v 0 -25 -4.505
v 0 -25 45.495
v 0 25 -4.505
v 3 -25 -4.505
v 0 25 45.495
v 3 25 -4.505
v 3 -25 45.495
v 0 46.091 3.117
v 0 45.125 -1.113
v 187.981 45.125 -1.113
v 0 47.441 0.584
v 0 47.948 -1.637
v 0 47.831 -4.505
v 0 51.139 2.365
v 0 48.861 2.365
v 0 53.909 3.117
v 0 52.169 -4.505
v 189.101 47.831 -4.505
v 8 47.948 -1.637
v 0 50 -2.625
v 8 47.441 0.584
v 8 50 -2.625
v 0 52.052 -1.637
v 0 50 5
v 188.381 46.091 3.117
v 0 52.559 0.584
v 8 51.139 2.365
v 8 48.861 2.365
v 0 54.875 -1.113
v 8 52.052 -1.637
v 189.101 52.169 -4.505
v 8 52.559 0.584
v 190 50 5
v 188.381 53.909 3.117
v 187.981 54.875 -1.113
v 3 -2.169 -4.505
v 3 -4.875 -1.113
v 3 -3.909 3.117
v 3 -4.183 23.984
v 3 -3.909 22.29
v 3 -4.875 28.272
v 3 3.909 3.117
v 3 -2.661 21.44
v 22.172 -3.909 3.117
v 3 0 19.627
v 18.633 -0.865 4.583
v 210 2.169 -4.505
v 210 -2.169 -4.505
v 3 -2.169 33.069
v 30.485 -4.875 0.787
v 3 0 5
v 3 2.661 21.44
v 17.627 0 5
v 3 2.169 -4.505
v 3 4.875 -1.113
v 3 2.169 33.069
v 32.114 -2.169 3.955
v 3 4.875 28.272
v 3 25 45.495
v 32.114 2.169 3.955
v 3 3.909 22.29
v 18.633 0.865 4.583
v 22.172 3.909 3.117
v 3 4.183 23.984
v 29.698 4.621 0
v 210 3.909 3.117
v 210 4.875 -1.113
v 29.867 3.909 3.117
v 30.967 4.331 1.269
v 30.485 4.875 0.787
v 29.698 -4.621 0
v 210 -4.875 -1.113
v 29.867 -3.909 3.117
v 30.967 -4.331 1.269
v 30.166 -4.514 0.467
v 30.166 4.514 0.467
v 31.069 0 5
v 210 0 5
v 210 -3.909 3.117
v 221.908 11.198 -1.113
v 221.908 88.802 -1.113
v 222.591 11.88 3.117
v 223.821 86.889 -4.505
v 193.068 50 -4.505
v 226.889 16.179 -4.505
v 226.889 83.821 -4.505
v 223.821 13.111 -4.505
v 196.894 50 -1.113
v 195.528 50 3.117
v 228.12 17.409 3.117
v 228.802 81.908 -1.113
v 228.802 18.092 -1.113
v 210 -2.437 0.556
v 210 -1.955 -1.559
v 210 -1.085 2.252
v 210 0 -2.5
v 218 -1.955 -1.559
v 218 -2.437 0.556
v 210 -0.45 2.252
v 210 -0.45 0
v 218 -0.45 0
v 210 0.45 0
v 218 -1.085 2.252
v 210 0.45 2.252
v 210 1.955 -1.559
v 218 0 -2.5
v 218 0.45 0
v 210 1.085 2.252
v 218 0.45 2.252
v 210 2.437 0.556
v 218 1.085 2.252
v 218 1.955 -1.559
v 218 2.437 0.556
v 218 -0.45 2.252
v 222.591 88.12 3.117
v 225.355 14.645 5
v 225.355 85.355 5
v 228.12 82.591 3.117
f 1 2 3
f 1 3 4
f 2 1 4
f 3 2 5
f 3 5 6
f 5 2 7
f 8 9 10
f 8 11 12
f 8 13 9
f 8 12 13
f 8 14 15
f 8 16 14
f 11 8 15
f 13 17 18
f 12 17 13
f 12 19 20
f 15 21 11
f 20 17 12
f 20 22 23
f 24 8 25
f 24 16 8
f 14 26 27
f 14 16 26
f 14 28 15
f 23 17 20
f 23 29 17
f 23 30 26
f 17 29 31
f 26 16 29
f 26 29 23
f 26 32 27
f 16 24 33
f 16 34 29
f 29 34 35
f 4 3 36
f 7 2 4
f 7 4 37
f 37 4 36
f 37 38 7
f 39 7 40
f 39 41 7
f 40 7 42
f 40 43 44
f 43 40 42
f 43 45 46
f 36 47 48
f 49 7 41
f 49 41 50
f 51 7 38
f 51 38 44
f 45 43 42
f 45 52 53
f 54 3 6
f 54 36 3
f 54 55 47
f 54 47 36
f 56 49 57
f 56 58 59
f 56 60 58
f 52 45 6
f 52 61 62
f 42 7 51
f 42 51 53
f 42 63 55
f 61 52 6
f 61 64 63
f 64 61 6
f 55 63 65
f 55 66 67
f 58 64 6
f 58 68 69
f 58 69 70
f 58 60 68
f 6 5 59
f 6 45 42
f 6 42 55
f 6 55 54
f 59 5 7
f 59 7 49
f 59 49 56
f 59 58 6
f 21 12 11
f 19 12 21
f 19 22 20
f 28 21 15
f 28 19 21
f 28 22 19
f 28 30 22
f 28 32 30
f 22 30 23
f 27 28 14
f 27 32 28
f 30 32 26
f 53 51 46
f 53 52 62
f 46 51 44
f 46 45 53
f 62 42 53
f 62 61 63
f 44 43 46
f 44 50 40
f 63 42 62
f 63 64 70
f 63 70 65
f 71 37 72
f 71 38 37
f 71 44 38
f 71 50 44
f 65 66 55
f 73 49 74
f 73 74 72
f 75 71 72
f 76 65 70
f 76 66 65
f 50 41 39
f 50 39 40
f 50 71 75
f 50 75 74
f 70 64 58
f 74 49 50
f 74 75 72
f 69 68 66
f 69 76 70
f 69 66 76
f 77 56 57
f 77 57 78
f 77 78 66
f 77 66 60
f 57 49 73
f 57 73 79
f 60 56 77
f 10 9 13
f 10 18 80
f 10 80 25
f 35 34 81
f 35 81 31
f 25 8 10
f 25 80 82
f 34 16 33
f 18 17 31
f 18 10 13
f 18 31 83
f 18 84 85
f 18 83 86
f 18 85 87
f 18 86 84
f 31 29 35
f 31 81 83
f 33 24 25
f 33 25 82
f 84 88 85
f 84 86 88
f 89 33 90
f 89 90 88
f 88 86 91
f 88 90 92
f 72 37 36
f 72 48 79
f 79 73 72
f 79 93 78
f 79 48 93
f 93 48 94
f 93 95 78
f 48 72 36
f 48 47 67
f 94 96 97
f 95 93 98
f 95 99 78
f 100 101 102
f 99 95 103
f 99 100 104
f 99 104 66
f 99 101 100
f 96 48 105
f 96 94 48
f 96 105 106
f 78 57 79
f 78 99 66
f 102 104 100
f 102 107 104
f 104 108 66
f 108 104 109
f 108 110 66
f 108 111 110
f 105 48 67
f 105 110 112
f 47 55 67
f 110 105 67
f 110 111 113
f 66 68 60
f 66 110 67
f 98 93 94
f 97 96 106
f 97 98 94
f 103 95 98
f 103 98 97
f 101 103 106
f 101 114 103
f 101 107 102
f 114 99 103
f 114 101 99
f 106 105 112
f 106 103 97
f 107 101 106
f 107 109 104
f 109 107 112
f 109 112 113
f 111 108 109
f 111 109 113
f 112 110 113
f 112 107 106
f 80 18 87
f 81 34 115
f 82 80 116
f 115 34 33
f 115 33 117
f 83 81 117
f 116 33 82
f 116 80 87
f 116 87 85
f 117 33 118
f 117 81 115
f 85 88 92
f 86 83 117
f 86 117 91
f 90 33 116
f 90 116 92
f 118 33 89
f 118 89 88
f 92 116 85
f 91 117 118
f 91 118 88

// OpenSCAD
// file: puzzlecut.scad
// OpenSCAD Puzzlecut library
// Author: Matthew Fallshaw
// Source: https://github.com/matthewfallshaw/os_puzzlecut.git

// Public Constants
PC_MALE=1;
PC_FEMALE=0;
PC_X=[1,0,0];
PC_Y=[0,1,0];
PC_Z=[0,0,1];

// Private Constants
FIT_CLEARANCE=0.25;

// puzzle_cut module
// cuts away one of the positive axes and adds (male or female) joining pins/holes
// @param {number} pin_dia - diameter of joining pins
// @param {number} pin_length - length of joining pins
// @param {PC_MALE|PC_FEMALE} sex - male (pin) or female (hole)
// @param {PC_X|PC_Y|PC_Z} axis - which positive axis will be cut
// @param {Array.<Array.<number>>} [pins_v=[[0,0]]] - vector of pin locations ([[y,z]] for PC_X, etc.)
// @param {integer} [$fn=7] - facets
// @param {number} [fit_clearance=0.25] - extra size for the fit hole
// @param {number} [line_width=0.45] - printed line width
// @param {number} [cut_size=10000] - bounding cut cube size
module puzzle_cut(pin_dia=8,pin_length=8,sex=PC_MALE,axis=PC_X,pins_v=[[0,0]],
                  $fn=7,fit_clearance=FIT_CLEARANCE,line_width=0.45,cut_size=10000)
{
  difference() {
    children();
    if (sex) {
      difference() {
        cut_cube(sex,cut_size);
        cut_pins(pin_dia,pin_length,sex,pins_v,$fn,fit_clearance,line_width);
      }
    }
    else {
      union() {
        cut_cube(sex,cut_size);
        cut_pins(pin_dia,pin_length,sex,pins_v,$fn,fit_clearance,line_width);
      }
    }
  }
}

module cut_cube(sex,cut_size)
{
  rotate(sex ? 0 : 180) translate([0,-cut_size/2,-cut_size/2]) cube(cut_size);
}

module cut_pins(pin_dia,pin_length,sex,pins_v,$fn,fit_clearance,line_width)
{
  for (p=pins_v) {
    translate([-pin_length,p[0],p[1]])
      pin(pin_dia=pin_dia,pin_length=pin_length*2,sex=sex,
          $fn=$fn,fit_clearance=fit_clearance,line_width=line_width);
  }
}

module pin(pin_dia=8,pin_length=8,sex=PC_MALE,$fn=7,fit_clearance,line_width=0.45)
{
  slot=ceil(pin_dia/6/line_width)*line_width;
  difference() {
    rotate([180,0,0]) beam(l=pin_length,d=pin_dia+(sex?0:fit_clearance),n=$fn);
    if(sex) translate([-1,-slot/2,0]) cube([pin_length+2,slot,pin_dia]);
  }
}

module beam(l,d,n) {
  rotate([0,90]) rotate([0,0,360/(n*2)]) cylinder(h=l,d=d,$fn=n);
}


/*
// Example
cut=210;
translate([cut,0]) puzzle_cut(pin_dia=4,pin_length=8,sex=PC_MALE,axis=PC_X)   translate([-cut,0])
  forked_beam();
translate([0,50])  puzzle_cut(pin_dia=4,pin_length=8,sex=PC_FEMALE,axis=PC_X) translate([-cut,0])
  forked_beam();
*/
// file: NopSCADlib/lib.scad
// Control
testing = false;

$fs = $preview ? 1 : 0.05;
$fa = $preview ? 1 : 0.2;

wall = 2;
dupont = 2.54;

koppla_width = 50.5;
koppla_diameter = 24.5;
case_width = koppla_width + wall*2;
case_diameter = koppla_diameter + wall*2;
payload_width = koppla_width - wall*2; 
payload_diameter = koppla_diameter - wall*2;

// Boards
wemos_width = 25.6;
wemos_length = 34.2;

euplug_width = 35.3;
euplug_diameter = 13.7;

lid_height = 10;

h_board = wemos_length;
h_buffer_lid = 15;
h_buffer_koppla = 25;
h_buffer = h_buffer_lid + h_buffer_koppla;
h_overlap = euplug_width*0.75;

case_height = lid_height+h_buffer+h_board+h_overlap+wall*2;

module Block(w, h, d) {
    hull() {
        for(x=[-1,1])
            translate([(w-d)/2*x,0,0])
                cylinder(h=h, r=d/2, center=true);
    }
}
// main file
include <NopSCADlib/lib.scad>
include <puzzlecut.scad>

lw=0.45;
lh=0.2;

dia=10;
pin_dia=dia/2;
n=7;

module forked_beam()
{
  difference() {
    union() {
      translate([0,-25,-z_adj(dia,n)]) cube([3,50,50]);
      beam(400,dia,n);
      translate([400,0]) for(r=[-45,45]) {
        rotate(r) beam(50,dia,n);
      }
      translate([+(50-8)*sin(45),0]) rotate([0,-135]) beam(50,dia,n);
    }
    translate([-100,-50,-dia]) cube(100);
  }
}

function z_adj(d,n)=(d/2)*cos(360/n/2);


cut=210;
translate([cut,0]) puzzle_cut(pin_dia=pin_dia,pin_length=8,sex=PC_MALE,  axis=PC_X)
  translate([-cut,0]) forked_beam();
translate([0,50])  puzzle_cut(pin_dia=pin_dia,pin_length=8,sex=PC_FEMALE,axis=PC_X)
  translate([-cut,0]) forked_beam();
